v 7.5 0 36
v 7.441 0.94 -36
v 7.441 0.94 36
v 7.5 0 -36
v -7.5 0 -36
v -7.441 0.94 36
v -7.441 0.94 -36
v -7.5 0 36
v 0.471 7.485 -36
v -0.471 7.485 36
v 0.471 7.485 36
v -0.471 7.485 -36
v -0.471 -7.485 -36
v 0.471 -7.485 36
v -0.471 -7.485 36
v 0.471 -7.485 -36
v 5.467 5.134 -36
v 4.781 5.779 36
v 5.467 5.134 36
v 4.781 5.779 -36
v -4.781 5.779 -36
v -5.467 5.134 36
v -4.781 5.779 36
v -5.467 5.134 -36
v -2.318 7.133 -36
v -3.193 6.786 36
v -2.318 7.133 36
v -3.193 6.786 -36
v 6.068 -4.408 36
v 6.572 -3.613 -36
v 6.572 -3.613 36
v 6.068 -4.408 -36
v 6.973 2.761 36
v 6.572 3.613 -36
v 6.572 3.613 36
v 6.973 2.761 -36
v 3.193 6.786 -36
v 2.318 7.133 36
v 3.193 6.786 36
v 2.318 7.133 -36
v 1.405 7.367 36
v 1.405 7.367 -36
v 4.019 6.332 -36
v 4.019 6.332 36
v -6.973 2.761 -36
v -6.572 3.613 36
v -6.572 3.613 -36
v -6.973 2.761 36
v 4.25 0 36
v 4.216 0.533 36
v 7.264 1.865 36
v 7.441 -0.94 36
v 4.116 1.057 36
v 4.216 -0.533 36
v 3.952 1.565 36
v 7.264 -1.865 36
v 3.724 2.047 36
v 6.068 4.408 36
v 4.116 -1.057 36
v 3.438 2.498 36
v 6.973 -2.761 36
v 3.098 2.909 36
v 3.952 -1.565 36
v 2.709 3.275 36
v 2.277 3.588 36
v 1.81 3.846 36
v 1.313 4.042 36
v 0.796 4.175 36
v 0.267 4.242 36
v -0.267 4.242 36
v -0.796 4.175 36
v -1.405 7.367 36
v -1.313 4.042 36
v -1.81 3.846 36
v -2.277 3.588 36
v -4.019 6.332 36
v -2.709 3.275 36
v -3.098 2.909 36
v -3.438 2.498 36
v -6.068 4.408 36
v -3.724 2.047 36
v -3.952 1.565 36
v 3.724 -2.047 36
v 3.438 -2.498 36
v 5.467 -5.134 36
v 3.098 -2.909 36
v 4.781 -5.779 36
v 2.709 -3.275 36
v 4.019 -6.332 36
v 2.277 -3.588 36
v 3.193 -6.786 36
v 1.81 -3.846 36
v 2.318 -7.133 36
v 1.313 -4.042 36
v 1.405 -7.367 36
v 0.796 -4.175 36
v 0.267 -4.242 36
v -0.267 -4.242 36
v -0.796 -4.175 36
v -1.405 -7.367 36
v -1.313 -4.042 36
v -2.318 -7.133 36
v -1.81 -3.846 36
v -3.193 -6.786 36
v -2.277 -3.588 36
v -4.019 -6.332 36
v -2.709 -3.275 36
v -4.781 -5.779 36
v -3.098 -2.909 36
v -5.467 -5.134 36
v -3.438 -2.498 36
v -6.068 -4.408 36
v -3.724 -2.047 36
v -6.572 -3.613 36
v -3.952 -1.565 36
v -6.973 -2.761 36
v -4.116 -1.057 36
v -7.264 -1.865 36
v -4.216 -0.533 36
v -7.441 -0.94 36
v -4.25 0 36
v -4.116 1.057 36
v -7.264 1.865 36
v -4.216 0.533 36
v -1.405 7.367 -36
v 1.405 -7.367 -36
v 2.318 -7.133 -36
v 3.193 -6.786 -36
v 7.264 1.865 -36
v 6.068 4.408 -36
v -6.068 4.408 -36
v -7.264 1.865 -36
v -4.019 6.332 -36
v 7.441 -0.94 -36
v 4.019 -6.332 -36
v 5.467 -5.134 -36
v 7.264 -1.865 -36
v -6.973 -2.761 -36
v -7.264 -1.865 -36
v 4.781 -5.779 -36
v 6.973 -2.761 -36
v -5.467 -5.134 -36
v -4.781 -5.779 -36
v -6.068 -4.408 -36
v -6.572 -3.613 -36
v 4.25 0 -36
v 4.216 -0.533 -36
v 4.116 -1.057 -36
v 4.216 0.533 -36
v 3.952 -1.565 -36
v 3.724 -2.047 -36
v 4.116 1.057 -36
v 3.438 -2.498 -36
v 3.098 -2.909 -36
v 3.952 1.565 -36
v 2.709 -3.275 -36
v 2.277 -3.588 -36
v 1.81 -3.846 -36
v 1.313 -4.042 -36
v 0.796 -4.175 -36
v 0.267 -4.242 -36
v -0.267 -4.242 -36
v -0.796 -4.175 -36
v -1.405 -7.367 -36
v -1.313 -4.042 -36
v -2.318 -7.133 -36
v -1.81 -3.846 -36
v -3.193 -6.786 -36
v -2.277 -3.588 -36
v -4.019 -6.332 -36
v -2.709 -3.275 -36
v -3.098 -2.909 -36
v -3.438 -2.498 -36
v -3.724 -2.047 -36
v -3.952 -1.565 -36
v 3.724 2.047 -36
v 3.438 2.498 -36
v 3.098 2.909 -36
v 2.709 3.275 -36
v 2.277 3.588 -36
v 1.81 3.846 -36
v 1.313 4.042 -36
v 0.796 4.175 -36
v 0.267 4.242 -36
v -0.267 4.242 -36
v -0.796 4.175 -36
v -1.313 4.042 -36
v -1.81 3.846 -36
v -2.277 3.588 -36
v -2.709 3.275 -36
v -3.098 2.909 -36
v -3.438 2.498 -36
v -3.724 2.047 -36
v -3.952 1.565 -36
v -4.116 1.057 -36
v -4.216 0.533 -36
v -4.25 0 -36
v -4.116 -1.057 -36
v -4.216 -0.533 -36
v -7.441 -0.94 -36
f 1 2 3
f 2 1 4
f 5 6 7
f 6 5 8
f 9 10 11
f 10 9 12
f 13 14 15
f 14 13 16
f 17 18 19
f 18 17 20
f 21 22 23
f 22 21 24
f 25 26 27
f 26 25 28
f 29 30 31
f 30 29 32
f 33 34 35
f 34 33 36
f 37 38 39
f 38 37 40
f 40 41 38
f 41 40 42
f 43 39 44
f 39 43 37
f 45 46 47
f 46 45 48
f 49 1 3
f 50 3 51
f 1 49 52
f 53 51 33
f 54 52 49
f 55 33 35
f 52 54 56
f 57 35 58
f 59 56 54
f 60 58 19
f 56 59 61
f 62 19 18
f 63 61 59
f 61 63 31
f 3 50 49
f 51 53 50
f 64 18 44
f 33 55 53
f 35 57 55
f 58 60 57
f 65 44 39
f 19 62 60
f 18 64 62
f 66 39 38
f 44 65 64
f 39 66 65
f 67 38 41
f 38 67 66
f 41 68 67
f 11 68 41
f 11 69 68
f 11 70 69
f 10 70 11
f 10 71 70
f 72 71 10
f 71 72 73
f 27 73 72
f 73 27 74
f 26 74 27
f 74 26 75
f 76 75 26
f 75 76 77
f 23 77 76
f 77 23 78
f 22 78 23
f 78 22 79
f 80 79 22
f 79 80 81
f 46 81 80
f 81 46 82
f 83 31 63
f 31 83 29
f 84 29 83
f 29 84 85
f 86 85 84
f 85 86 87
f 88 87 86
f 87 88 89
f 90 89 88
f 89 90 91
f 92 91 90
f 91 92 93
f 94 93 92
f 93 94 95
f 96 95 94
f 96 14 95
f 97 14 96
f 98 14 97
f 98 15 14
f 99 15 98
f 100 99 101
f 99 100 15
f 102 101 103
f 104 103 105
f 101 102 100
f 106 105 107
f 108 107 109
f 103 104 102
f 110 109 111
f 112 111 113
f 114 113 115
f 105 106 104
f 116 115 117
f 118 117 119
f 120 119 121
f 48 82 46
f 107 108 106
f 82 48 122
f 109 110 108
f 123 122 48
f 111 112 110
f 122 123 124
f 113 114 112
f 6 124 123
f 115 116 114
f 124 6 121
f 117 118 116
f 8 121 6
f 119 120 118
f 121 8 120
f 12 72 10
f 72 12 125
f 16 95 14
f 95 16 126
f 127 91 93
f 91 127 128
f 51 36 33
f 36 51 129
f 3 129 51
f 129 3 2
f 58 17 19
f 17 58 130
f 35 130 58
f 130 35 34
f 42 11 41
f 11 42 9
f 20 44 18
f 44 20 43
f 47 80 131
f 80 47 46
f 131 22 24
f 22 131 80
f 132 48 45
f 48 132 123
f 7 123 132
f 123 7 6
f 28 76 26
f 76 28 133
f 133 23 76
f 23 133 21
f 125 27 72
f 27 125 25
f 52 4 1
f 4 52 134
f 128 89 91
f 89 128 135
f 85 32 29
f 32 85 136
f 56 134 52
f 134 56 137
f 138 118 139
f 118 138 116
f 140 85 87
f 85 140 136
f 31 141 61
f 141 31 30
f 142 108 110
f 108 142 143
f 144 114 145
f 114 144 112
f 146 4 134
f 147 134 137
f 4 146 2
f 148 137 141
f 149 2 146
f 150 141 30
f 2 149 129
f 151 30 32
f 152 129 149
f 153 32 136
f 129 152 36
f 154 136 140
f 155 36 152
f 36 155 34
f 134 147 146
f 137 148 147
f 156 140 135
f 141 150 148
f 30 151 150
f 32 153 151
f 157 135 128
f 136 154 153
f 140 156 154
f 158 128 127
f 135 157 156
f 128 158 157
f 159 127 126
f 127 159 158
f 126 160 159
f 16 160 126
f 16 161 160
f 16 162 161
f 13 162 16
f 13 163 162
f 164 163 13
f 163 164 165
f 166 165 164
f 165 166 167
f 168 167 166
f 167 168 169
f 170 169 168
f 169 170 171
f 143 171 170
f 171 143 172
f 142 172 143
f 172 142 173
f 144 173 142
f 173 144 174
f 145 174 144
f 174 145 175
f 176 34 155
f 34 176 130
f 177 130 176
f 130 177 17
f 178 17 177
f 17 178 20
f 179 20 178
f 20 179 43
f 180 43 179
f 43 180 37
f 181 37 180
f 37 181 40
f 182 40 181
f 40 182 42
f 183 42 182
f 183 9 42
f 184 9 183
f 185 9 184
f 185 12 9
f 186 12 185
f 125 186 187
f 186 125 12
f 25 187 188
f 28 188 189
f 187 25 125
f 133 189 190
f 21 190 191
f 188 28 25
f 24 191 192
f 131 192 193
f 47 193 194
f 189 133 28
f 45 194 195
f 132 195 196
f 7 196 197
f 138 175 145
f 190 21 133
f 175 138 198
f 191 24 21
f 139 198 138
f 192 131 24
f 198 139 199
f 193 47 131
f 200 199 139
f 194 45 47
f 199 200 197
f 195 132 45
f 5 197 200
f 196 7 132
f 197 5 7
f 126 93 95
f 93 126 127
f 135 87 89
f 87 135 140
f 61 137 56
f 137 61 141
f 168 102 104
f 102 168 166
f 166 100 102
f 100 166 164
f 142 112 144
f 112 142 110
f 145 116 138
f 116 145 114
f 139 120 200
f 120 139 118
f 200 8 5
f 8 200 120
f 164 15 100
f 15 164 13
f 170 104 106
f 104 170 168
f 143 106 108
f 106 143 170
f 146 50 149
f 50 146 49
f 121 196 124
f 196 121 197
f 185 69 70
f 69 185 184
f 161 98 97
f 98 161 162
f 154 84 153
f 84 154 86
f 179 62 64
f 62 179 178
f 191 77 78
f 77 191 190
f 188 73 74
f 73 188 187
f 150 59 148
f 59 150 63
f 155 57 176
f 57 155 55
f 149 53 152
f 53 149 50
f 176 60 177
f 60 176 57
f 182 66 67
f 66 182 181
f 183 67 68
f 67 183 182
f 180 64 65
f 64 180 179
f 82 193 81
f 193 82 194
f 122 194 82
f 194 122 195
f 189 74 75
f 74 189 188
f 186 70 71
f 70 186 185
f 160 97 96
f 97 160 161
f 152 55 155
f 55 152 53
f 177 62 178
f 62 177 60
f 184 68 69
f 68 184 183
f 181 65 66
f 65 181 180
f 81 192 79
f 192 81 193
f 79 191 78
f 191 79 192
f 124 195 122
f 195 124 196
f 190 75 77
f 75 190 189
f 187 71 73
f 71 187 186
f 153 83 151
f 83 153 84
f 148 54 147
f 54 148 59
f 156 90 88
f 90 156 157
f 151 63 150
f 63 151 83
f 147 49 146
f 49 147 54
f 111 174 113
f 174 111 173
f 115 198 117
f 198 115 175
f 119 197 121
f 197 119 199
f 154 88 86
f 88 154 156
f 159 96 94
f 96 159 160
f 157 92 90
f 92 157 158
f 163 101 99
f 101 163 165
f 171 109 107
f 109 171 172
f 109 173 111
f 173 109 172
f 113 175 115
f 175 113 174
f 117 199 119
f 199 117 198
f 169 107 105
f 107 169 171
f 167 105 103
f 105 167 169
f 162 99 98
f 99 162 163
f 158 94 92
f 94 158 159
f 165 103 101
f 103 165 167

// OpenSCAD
$fn = 50;


difference() {
	union() {
		translate(v = [0, 0, -36.0000000000]) {
			cylinder(h = 72, r = 7.5000000000);
		}
	}
	union() {
		translate(v = [0, 0, -100.0000000000]) {
			cylinder(h = 200, r = 4.2500000000);
		}
	}
}
